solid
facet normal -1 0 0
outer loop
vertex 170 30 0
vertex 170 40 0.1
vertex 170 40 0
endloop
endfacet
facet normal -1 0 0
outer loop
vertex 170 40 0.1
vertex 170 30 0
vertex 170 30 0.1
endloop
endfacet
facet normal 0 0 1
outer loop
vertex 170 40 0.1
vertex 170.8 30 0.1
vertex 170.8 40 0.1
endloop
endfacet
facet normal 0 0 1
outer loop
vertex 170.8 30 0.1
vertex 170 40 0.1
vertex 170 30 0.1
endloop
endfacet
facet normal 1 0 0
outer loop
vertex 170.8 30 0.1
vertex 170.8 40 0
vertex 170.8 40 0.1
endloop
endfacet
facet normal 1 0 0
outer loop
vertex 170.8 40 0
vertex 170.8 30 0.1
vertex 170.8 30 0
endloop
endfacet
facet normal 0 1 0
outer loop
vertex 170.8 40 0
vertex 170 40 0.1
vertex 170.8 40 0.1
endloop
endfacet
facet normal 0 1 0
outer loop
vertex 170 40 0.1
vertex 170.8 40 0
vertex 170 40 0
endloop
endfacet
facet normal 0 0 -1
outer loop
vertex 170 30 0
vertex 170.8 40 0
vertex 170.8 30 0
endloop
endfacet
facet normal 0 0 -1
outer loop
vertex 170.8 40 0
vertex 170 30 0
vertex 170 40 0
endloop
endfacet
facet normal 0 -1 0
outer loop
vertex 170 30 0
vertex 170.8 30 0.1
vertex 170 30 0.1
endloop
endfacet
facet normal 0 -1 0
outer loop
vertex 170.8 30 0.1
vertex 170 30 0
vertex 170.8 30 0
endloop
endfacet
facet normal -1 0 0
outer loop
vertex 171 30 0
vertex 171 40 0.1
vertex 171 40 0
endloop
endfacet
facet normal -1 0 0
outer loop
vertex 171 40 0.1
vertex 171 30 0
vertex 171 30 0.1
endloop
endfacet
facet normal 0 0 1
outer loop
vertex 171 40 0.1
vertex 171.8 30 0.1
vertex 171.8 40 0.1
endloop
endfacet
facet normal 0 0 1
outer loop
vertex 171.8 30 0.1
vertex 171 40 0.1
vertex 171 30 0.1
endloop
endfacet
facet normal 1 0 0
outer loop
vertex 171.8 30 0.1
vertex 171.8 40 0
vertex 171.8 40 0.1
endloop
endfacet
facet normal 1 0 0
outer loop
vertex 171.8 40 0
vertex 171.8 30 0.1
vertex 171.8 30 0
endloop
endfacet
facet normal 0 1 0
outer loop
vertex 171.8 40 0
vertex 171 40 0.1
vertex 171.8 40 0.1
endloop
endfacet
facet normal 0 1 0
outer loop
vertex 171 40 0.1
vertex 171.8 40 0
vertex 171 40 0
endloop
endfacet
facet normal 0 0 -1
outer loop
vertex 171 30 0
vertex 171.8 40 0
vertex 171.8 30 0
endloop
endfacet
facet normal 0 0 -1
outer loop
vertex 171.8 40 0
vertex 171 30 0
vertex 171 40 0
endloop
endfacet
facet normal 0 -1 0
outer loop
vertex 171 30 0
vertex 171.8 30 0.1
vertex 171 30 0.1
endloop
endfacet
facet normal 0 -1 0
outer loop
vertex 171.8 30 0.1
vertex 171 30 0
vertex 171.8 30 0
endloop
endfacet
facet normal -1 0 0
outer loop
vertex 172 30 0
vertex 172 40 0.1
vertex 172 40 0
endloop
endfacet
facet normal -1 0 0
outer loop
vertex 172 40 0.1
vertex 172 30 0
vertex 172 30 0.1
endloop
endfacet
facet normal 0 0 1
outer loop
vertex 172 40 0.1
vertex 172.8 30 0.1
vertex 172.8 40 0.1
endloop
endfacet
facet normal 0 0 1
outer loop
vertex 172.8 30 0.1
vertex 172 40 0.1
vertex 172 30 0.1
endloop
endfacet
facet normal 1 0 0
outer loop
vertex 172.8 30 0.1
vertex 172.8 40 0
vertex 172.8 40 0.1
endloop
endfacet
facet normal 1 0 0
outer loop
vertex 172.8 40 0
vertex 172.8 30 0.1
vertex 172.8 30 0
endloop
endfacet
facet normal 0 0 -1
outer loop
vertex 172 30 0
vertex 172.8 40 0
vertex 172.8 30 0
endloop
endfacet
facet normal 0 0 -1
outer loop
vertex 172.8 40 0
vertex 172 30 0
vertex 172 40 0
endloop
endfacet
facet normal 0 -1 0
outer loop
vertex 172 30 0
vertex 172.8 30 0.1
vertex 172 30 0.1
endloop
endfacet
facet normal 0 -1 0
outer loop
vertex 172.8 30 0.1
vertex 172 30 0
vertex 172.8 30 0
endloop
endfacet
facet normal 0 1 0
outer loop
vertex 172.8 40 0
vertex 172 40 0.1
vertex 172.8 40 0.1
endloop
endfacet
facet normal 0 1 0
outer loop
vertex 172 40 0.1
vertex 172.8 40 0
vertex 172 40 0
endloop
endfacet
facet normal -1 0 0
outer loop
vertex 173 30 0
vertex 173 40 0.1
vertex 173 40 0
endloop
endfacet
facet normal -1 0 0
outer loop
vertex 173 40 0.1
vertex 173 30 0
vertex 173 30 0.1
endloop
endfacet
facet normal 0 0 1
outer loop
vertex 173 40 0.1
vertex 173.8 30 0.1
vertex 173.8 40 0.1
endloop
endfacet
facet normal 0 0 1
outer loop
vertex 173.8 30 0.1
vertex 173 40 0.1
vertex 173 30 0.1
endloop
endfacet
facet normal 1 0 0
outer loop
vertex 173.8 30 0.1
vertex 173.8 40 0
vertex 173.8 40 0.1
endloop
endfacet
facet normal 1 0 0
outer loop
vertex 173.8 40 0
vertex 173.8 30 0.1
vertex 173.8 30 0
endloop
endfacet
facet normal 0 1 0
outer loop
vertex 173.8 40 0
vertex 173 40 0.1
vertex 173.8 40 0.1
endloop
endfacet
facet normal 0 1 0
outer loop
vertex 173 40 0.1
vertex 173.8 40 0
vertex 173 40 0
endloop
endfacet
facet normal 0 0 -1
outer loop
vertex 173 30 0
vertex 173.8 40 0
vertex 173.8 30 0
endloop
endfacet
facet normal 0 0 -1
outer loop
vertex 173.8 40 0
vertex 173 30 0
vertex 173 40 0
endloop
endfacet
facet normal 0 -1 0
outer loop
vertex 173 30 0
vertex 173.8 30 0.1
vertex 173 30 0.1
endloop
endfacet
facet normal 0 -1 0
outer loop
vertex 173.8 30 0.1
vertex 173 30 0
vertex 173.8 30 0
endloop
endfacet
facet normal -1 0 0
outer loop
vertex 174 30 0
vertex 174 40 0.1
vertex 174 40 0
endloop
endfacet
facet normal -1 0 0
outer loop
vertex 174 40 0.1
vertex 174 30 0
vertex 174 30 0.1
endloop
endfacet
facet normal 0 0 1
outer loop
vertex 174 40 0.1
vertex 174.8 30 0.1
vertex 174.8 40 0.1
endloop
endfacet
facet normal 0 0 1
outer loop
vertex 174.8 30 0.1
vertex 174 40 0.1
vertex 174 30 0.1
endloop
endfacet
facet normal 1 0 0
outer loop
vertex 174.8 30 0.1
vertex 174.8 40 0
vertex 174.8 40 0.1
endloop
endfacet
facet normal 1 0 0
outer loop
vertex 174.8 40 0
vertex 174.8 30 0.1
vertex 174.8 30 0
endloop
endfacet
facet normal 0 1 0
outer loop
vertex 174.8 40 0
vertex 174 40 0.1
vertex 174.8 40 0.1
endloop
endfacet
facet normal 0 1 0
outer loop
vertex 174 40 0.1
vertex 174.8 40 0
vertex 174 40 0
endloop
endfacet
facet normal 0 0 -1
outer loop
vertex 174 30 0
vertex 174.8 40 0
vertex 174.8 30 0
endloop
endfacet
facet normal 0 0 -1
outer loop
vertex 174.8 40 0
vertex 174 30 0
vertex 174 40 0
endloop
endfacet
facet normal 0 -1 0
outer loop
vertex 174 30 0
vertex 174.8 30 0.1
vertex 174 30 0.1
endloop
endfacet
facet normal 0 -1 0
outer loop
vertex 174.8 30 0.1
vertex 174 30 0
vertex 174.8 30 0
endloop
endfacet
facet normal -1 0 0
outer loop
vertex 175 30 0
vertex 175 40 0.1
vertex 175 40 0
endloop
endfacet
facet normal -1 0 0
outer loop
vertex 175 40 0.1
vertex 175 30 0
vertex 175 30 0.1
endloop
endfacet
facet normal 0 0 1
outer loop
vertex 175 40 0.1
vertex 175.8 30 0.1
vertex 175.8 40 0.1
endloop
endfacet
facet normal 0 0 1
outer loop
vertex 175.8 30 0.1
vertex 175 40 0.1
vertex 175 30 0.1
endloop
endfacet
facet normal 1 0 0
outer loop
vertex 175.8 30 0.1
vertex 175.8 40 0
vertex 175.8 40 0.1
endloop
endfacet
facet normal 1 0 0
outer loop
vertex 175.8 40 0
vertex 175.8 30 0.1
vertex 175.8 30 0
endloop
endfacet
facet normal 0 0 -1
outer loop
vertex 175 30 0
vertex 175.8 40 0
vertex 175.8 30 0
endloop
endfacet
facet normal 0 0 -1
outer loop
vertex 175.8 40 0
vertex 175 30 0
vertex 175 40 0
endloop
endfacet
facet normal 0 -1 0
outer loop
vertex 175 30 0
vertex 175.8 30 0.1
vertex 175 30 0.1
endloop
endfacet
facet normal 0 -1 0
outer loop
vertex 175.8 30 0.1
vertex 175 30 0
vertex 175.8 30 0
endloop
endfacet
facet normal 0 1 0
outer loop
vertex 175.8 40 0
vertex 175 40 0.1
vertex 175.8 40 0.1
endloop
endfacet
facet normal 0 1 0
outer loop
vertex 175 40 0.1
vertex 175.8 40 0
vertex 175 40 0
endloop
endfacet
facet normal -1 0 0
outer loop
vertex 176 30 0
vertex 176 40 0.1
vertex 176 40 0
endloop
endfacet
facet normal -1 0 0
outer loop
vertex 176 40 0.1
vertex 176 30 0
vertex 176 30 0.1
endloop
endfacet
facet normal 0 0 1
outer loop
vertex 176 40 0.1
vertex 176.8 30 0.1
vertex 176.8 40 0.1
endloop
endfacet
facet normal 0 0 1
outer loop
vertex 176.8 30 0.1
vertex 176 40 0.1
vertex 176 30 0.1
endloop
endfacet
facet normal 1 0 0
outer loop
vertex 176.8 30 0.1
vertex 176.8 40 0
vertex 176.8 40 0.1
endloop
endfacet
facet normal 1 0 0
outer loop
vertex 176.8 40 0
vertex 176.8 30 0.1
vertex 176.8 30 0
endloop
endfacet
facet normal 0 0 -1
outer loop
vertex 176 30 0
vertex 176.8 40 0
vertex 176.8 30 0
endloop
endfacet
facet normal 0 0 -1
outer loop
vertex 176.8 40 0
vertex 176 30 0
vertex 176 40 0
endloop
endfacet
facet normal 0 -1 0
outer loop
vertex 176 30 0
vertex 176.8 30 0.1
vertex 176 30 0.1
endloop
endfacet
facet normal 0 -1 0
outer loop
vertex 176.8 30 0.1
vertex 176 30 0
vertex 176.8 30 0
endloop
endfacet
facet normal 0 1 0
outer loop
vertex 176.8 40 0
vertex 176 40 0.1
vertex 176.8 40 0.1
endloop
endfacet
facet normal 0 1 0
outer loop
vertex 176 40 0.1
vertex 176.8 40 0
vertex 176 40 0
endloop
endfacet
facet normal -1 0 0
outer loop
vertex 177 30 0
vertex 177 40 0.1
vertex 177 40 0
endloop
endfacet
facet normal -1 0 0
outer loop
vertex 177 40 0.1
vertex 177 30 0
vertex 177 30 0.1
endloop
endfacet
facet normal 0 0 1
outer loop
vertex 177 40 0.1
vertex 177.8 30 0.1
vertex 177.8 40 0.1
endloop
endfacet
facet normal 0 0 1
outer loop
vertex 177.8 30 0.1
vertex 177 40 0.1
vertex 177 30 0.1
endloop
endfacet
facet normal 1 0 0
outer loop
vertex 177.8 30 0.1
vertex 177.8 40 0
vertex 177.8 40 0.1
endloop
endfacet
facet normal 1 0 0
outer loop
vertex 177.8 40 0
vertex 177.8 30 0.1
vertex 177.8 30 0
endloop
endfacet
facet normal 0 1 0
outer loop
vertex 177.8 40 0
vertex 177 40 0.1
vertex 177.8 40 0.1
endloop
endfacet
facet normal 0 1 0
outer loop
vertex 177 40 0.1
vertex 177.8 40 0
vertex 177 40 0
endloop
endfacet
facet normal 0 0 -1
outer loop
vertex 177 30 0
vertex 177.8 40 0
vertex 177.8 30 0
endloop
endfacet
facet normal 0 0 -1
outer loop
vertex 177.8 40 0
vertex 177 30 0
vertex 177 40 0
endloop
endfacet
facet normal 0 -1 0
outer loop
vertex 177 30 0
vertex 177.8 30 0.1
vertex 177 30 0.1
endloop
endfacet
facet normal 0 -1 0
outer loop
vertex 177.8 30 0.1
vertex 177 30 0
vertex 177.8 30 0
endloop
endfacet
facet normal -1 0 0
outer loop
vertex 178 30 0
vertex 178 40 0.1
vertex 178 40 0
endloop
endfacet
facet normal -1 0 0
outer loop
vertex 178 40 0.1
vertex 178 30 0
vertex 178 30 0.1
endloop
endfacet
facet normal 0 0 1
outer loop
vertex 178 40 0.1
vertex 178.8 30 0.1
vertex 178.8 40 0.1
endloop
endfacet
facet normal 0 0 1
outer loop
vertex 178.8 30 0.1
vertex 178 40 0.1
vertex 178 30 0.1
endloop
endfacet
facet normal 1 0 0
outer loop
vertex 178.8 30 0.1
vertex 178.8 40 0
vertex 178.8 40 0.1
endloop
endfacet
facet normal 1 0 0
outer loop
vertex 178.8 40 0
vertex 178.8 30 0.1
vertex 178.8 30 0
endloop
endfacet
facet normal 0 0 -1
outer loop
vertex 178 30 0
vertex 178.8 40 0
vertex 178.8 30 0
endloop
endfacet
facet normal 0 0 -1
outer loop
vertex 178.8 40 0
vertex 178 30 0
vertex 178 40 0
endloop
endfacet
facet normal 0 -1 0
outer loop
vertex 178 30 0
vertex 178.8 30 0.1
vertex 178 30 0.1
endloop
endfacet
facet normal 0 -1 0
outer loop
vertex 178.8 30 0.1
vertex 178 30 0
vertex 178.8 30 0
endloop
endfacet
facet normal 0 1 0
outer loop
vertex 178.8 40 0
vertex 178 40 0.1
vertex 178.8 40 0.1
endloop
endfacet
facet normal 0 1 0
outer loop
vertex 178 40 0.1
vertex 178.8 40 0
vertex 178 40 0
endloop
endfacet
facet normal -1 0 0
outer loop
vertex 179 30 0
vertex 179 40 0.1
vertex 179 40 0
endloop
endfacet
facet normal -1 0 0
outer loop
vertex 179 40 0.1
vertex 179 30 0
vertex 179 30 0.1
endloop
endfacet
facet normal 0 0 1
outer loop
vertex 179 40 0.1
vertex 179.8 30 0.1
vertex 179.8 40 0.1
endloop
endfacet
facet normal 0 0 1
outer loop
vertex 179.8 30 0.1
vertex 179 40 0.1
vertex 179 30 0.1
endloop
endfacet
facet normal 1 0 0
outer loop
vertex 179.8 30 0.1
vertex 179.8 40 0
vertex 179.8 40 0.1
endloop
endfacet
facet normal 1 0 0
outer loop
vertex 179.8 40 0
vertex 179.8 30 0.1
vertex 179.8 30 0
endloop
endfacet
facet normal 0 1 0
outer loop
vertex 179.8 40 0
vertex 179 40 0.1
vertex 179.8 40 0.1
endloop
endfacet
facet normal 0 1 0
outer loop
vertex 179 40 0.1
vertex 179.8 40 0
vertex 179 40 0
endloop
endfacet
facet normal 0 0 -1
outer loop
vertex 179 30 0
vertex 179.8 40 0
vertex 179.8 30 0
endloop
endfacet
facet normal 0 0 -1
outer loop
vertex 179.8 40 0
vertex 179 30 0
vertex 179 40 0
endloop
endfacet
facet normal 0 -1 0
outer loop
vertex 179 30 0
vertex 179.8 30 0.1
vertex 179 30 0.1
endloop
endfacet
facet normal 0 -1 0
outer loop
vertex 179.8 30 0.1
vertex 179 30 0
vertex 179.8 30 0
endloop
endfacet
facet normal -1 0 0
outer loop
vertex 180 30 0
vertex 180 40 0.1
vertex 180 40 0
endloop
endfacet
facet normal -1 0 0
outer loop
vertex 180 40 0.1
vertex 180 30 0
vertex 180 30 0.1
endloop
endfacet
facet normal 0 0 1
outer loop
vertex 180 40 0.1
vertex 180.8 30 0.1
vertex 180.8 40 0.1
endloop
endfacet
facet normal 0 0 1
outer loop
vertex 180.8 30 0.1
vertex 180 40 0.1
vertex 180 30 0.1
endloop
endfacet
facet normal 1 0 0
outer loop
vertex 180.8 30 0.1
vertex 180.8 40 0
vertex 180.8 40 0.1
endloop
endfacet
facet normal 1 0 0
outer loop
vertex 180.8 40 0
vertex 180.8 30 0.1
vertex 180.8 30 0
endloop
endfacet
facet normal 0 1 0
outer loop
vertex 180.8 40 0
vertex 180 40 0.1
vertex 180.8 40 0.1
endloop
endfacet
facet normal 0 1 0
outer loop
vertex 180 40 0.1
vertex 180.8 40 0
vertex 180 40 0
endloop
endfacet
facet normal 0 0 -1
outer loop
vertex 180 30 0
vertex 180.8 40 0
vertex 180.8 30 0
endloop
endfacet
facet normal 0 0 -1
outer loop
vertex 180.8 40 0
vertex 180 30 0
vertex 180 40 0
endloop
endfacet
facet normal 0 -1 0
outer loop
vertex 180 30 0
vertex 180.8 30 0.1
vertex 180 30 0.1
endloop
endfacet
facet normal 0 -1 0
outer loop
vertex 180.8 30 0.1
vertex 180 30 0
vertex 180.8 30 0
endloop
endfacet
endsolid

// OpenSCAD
translate([10+160,10+20,0])
        for (i = [0 : 10]){
            translate([i,0,0])
                cube(size = [0.8,10,0.1]);
    }
